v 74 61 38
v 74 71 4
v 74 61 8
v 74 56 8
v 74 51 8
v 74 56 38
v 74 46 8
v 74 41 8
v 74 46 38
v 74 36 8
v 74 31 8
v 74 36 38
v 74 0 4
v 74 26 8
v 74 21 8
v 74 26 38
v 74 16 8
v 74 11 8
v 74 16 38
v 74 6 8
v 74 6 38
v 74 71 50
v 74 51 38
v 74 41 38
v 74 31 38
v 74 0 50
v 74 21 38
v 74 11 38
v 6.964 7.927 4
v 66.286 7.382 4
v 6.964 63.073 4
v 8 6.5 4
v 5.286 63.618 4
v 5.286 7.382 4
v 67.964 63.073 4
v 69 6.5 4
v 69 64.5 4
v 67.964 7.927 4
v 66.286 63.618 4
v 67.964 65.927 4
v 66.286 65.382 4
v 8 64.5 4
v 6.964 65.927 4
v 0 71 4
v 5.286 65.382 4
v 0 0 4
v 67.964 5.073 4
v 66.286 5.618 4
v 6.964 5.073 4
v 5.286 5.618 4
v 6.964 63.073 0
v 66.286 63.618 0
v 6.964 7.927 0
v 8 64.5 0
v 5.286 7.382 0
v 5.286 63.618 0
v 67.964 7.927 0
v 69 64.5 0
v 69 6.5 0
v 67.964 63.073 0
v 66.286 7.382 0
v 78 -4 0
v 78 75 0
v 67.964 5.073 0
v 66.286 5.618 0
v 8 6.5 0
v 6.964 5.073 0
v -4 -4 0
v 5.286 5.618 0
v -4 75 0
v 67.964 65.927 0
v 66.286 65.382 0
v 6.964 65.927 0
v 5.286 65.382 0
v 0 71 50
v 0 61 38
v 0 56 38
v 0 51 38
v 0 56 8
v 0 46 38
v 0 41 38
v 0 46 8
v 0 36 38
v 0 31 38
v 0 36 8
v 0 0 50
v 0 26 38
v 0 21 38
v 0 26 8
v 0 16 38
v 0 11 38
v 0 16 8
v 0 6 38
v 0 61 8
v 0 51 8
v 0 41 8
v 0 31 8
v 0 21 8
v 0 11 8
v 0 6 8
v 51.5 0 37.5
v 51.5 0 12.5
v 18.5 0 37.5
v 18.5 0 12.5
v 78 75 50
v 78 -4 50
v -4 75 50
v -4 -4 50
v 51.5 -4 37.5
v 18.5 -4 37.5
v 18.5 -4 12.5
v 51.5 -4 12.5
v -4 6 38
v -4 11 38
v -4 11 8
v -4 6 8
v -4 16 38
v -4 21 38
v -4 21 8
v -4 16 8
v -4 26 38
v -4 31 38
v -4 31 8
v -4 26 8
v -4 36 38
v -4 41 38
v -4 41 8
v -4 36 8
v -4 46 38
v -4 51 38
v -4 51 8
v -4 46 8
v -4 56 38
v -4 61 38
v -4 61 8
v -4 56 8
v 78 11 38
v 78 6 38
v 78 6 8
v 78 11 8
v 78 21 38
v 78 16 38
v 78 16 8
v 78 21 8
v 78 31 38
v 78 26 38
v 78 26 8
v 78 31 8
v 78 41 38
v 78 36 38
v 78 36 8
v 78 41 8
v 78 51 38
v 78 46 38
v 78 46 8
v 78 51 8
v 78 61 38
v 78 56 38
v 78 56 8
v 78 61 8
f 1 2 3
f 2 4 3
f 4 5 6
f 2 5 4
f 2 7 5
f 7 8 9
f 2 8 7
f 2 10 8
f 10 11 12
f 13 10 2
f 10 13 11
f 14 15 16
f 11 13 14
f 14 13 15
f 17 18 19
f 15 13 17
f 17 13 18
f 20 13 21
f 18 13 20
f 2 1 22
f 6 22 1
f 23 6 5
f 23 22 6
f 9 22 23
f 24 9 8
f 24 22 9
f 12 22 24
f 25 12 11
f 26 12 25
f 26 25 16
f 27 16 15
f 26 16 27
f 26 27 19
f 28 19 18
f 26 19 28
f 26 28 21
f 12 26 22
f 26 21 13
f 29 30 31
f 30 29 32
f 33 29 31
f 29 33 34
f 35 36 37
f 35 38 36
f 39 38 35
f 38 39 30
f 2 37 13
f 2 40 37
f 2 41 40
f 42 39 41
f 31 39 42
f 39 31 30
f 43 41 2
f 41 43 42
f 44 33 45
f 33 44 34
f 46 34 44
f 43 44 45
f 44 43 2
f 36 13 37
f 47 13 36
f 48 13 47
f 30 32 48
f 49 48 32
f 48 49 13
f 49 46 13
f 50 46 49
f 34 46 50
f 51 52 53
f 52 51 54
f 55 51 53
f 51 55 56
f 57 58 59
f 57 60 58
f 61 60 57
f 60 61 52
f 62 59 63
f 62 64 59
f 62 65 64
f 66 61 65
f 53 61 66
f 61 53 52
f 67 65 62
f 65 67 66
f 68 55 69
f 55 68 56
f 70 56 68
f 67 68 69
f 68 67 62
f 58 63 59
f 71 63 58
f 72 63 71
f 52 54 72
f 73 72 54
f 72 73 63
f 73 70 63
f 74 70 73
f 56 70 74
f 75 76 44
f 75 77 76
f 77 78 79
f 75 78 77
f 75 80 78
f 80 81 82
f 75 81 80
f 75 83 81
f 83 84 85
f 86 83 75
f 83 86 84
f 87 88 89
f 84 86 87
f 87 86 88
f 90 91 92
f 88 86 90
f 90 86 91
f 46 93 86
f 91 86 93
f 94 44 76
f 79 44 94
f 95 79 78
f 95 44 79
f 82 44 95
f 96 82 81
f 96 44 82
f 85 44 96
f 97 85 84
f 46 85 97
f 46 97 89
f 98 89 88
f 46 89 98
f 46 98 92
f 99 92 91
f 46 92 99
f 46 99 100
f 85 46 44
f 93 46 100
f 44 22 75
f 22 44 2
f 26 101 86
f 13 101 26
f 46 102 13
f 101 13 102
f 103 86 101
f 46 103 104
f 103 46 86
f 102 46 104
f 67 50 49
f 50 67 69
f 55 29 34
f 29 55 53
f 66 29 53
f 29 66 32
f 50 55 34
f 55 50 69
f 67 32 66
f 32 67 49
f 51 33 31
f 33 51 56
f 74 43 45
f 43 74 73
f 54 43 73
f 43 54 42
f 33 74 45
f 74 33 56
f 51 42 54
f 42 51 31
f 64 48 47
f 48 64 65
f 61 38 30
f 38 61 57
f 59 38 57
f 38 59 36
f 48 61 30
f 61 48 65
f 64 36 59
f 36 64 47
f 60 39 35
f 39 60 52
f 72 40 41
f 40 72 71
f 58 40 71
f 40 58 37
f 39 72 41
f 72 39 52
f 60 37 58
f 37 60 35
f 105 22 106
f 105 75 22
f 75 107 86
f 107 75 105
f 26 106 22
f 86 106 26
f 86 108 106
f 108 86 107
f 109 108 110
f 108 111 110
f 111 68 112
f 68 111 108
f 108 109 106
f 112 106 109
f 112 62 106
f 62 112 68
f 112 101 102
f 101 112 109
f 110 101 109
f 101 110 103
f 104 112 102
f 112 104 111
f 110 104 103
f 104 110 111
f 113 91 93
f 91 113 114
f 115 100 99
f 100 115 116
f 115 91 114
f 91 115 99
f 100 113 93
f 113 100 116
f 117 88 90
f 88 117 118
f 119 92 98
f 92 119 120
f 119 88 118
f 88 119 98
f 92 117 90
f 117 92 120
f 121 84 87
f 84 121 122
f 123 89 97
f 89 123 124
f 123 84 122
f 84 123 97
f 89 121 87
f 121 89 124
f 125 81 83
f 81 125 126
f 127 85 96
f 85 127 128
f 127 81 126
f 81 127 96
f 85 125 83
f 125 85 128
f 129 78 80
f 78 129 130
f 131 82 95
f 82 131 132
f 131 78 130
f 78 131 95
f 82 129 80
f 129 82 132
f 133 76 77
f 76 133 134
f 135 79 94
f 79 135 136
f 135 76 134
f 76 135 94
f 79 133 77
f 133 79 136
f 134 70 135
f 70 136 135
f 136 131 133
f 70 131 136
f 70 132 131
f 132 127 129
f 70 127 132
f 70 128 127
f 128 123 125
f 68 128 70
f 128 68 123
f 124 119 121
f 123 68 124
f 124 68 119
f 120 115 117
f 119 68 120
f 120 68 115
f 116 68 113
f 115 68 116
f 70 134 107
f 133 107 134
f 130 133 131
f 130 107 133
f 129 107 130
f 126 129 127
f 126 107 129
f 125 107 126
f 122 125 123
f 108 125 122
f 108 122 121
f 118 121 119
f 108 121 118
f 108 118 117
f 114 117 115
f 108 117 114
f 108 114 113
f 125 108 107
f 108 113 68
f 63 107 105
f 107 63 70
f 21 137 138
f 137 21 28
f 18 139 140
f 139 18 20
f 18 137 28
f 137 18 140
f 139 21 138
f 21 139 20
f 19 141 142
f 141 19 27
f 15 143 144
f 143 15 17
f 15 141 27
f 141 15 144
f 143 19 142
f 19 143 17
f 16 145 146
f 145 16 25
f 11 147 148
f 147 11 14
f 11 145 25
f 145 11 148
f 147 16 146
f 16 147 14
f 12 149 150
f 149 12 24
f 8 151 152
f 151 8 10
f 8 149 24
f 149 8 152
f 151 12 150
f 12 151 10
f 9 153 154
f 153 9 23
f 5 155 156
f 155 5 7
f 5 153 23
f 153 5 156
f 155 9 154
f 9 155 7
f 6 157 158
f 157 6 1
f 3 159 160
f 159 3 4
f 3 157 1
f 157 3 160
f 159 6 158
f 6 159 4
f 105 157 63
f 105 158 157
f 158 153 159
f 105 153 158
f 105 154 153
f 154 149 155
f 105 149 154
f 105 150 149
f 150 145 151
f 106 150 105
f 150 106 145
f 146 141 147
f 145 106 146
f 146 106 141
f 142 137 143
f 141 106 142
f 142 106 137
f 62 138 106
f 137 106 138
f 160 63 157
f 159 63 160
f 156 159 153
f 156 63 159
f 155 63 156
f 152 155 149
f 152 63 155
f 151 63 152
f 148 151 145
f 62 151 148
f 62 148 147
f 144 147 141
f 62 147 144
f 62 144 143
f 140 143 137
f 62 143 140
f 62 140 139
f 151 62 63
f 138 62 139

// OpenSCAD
thickness = 4;
overlap = 4;
extrude_thickness = thickness + overlap;

esp_width = 66;
esp_depth = 63;
cylinder_dia = 3;
cylinder_offset = 2.5;


case_width = esp_width + overlap * 2; 
case_depth = esp_depth + overlap * 2; 
case_height = 50;


module base() {
    module peg(x=0, y=0) {
        translate([x, y, -(overlap / 2)]) cylinder(h=extrude_thickness, d=cylinder_dia);
    }

    translate([overlap, overlap, 0]) difference() {
        translate([-overlap, -overlap, 0]) cube([case_width, case_depth, thickness]);
        peg(x=cylinder_offset, y=cylinder_offset);
        peg(x=cylinder_offset, y=(esp_depth - cylinder_offset));
        peg(x=(esp_width - cylinder_offset), y= cylinder_offset);
        peg(x=(esp_width - cylinder_offset), y=(esp_depth - cylinder_offset));
    }
}


module front_wall(with_opening=false) {
    difference() {
        cube([case_width, thickness, case_height]);

        if (with_opening) {
            translate([case_width / 4, -(overlap / 2), case_height / 4]) cube([esp_width / 2, extrude_thickness, case_height / 2]);
        }
    }


}

module side_wall(with_openings=false) {
    difference() {
        translate([0, -thickness,0]) cube([thickness, case_depth + thickness * 2, case_height]);
        for (y = [1:6]) {
            translate([-(overlap / 2), y * 10 - thickness, thickness * 2]) cube([extrude_thickness, 5, 30]);
        }
    }
}

base();
translate([0,-thickness,0]) front_wall(with_opening=true);
translate([0,case_depth,0]) front_wall();
translate([-thickness,0,0]) side_wall();
translate([case_width,0,0]) side_wall();

echo(version=version());
